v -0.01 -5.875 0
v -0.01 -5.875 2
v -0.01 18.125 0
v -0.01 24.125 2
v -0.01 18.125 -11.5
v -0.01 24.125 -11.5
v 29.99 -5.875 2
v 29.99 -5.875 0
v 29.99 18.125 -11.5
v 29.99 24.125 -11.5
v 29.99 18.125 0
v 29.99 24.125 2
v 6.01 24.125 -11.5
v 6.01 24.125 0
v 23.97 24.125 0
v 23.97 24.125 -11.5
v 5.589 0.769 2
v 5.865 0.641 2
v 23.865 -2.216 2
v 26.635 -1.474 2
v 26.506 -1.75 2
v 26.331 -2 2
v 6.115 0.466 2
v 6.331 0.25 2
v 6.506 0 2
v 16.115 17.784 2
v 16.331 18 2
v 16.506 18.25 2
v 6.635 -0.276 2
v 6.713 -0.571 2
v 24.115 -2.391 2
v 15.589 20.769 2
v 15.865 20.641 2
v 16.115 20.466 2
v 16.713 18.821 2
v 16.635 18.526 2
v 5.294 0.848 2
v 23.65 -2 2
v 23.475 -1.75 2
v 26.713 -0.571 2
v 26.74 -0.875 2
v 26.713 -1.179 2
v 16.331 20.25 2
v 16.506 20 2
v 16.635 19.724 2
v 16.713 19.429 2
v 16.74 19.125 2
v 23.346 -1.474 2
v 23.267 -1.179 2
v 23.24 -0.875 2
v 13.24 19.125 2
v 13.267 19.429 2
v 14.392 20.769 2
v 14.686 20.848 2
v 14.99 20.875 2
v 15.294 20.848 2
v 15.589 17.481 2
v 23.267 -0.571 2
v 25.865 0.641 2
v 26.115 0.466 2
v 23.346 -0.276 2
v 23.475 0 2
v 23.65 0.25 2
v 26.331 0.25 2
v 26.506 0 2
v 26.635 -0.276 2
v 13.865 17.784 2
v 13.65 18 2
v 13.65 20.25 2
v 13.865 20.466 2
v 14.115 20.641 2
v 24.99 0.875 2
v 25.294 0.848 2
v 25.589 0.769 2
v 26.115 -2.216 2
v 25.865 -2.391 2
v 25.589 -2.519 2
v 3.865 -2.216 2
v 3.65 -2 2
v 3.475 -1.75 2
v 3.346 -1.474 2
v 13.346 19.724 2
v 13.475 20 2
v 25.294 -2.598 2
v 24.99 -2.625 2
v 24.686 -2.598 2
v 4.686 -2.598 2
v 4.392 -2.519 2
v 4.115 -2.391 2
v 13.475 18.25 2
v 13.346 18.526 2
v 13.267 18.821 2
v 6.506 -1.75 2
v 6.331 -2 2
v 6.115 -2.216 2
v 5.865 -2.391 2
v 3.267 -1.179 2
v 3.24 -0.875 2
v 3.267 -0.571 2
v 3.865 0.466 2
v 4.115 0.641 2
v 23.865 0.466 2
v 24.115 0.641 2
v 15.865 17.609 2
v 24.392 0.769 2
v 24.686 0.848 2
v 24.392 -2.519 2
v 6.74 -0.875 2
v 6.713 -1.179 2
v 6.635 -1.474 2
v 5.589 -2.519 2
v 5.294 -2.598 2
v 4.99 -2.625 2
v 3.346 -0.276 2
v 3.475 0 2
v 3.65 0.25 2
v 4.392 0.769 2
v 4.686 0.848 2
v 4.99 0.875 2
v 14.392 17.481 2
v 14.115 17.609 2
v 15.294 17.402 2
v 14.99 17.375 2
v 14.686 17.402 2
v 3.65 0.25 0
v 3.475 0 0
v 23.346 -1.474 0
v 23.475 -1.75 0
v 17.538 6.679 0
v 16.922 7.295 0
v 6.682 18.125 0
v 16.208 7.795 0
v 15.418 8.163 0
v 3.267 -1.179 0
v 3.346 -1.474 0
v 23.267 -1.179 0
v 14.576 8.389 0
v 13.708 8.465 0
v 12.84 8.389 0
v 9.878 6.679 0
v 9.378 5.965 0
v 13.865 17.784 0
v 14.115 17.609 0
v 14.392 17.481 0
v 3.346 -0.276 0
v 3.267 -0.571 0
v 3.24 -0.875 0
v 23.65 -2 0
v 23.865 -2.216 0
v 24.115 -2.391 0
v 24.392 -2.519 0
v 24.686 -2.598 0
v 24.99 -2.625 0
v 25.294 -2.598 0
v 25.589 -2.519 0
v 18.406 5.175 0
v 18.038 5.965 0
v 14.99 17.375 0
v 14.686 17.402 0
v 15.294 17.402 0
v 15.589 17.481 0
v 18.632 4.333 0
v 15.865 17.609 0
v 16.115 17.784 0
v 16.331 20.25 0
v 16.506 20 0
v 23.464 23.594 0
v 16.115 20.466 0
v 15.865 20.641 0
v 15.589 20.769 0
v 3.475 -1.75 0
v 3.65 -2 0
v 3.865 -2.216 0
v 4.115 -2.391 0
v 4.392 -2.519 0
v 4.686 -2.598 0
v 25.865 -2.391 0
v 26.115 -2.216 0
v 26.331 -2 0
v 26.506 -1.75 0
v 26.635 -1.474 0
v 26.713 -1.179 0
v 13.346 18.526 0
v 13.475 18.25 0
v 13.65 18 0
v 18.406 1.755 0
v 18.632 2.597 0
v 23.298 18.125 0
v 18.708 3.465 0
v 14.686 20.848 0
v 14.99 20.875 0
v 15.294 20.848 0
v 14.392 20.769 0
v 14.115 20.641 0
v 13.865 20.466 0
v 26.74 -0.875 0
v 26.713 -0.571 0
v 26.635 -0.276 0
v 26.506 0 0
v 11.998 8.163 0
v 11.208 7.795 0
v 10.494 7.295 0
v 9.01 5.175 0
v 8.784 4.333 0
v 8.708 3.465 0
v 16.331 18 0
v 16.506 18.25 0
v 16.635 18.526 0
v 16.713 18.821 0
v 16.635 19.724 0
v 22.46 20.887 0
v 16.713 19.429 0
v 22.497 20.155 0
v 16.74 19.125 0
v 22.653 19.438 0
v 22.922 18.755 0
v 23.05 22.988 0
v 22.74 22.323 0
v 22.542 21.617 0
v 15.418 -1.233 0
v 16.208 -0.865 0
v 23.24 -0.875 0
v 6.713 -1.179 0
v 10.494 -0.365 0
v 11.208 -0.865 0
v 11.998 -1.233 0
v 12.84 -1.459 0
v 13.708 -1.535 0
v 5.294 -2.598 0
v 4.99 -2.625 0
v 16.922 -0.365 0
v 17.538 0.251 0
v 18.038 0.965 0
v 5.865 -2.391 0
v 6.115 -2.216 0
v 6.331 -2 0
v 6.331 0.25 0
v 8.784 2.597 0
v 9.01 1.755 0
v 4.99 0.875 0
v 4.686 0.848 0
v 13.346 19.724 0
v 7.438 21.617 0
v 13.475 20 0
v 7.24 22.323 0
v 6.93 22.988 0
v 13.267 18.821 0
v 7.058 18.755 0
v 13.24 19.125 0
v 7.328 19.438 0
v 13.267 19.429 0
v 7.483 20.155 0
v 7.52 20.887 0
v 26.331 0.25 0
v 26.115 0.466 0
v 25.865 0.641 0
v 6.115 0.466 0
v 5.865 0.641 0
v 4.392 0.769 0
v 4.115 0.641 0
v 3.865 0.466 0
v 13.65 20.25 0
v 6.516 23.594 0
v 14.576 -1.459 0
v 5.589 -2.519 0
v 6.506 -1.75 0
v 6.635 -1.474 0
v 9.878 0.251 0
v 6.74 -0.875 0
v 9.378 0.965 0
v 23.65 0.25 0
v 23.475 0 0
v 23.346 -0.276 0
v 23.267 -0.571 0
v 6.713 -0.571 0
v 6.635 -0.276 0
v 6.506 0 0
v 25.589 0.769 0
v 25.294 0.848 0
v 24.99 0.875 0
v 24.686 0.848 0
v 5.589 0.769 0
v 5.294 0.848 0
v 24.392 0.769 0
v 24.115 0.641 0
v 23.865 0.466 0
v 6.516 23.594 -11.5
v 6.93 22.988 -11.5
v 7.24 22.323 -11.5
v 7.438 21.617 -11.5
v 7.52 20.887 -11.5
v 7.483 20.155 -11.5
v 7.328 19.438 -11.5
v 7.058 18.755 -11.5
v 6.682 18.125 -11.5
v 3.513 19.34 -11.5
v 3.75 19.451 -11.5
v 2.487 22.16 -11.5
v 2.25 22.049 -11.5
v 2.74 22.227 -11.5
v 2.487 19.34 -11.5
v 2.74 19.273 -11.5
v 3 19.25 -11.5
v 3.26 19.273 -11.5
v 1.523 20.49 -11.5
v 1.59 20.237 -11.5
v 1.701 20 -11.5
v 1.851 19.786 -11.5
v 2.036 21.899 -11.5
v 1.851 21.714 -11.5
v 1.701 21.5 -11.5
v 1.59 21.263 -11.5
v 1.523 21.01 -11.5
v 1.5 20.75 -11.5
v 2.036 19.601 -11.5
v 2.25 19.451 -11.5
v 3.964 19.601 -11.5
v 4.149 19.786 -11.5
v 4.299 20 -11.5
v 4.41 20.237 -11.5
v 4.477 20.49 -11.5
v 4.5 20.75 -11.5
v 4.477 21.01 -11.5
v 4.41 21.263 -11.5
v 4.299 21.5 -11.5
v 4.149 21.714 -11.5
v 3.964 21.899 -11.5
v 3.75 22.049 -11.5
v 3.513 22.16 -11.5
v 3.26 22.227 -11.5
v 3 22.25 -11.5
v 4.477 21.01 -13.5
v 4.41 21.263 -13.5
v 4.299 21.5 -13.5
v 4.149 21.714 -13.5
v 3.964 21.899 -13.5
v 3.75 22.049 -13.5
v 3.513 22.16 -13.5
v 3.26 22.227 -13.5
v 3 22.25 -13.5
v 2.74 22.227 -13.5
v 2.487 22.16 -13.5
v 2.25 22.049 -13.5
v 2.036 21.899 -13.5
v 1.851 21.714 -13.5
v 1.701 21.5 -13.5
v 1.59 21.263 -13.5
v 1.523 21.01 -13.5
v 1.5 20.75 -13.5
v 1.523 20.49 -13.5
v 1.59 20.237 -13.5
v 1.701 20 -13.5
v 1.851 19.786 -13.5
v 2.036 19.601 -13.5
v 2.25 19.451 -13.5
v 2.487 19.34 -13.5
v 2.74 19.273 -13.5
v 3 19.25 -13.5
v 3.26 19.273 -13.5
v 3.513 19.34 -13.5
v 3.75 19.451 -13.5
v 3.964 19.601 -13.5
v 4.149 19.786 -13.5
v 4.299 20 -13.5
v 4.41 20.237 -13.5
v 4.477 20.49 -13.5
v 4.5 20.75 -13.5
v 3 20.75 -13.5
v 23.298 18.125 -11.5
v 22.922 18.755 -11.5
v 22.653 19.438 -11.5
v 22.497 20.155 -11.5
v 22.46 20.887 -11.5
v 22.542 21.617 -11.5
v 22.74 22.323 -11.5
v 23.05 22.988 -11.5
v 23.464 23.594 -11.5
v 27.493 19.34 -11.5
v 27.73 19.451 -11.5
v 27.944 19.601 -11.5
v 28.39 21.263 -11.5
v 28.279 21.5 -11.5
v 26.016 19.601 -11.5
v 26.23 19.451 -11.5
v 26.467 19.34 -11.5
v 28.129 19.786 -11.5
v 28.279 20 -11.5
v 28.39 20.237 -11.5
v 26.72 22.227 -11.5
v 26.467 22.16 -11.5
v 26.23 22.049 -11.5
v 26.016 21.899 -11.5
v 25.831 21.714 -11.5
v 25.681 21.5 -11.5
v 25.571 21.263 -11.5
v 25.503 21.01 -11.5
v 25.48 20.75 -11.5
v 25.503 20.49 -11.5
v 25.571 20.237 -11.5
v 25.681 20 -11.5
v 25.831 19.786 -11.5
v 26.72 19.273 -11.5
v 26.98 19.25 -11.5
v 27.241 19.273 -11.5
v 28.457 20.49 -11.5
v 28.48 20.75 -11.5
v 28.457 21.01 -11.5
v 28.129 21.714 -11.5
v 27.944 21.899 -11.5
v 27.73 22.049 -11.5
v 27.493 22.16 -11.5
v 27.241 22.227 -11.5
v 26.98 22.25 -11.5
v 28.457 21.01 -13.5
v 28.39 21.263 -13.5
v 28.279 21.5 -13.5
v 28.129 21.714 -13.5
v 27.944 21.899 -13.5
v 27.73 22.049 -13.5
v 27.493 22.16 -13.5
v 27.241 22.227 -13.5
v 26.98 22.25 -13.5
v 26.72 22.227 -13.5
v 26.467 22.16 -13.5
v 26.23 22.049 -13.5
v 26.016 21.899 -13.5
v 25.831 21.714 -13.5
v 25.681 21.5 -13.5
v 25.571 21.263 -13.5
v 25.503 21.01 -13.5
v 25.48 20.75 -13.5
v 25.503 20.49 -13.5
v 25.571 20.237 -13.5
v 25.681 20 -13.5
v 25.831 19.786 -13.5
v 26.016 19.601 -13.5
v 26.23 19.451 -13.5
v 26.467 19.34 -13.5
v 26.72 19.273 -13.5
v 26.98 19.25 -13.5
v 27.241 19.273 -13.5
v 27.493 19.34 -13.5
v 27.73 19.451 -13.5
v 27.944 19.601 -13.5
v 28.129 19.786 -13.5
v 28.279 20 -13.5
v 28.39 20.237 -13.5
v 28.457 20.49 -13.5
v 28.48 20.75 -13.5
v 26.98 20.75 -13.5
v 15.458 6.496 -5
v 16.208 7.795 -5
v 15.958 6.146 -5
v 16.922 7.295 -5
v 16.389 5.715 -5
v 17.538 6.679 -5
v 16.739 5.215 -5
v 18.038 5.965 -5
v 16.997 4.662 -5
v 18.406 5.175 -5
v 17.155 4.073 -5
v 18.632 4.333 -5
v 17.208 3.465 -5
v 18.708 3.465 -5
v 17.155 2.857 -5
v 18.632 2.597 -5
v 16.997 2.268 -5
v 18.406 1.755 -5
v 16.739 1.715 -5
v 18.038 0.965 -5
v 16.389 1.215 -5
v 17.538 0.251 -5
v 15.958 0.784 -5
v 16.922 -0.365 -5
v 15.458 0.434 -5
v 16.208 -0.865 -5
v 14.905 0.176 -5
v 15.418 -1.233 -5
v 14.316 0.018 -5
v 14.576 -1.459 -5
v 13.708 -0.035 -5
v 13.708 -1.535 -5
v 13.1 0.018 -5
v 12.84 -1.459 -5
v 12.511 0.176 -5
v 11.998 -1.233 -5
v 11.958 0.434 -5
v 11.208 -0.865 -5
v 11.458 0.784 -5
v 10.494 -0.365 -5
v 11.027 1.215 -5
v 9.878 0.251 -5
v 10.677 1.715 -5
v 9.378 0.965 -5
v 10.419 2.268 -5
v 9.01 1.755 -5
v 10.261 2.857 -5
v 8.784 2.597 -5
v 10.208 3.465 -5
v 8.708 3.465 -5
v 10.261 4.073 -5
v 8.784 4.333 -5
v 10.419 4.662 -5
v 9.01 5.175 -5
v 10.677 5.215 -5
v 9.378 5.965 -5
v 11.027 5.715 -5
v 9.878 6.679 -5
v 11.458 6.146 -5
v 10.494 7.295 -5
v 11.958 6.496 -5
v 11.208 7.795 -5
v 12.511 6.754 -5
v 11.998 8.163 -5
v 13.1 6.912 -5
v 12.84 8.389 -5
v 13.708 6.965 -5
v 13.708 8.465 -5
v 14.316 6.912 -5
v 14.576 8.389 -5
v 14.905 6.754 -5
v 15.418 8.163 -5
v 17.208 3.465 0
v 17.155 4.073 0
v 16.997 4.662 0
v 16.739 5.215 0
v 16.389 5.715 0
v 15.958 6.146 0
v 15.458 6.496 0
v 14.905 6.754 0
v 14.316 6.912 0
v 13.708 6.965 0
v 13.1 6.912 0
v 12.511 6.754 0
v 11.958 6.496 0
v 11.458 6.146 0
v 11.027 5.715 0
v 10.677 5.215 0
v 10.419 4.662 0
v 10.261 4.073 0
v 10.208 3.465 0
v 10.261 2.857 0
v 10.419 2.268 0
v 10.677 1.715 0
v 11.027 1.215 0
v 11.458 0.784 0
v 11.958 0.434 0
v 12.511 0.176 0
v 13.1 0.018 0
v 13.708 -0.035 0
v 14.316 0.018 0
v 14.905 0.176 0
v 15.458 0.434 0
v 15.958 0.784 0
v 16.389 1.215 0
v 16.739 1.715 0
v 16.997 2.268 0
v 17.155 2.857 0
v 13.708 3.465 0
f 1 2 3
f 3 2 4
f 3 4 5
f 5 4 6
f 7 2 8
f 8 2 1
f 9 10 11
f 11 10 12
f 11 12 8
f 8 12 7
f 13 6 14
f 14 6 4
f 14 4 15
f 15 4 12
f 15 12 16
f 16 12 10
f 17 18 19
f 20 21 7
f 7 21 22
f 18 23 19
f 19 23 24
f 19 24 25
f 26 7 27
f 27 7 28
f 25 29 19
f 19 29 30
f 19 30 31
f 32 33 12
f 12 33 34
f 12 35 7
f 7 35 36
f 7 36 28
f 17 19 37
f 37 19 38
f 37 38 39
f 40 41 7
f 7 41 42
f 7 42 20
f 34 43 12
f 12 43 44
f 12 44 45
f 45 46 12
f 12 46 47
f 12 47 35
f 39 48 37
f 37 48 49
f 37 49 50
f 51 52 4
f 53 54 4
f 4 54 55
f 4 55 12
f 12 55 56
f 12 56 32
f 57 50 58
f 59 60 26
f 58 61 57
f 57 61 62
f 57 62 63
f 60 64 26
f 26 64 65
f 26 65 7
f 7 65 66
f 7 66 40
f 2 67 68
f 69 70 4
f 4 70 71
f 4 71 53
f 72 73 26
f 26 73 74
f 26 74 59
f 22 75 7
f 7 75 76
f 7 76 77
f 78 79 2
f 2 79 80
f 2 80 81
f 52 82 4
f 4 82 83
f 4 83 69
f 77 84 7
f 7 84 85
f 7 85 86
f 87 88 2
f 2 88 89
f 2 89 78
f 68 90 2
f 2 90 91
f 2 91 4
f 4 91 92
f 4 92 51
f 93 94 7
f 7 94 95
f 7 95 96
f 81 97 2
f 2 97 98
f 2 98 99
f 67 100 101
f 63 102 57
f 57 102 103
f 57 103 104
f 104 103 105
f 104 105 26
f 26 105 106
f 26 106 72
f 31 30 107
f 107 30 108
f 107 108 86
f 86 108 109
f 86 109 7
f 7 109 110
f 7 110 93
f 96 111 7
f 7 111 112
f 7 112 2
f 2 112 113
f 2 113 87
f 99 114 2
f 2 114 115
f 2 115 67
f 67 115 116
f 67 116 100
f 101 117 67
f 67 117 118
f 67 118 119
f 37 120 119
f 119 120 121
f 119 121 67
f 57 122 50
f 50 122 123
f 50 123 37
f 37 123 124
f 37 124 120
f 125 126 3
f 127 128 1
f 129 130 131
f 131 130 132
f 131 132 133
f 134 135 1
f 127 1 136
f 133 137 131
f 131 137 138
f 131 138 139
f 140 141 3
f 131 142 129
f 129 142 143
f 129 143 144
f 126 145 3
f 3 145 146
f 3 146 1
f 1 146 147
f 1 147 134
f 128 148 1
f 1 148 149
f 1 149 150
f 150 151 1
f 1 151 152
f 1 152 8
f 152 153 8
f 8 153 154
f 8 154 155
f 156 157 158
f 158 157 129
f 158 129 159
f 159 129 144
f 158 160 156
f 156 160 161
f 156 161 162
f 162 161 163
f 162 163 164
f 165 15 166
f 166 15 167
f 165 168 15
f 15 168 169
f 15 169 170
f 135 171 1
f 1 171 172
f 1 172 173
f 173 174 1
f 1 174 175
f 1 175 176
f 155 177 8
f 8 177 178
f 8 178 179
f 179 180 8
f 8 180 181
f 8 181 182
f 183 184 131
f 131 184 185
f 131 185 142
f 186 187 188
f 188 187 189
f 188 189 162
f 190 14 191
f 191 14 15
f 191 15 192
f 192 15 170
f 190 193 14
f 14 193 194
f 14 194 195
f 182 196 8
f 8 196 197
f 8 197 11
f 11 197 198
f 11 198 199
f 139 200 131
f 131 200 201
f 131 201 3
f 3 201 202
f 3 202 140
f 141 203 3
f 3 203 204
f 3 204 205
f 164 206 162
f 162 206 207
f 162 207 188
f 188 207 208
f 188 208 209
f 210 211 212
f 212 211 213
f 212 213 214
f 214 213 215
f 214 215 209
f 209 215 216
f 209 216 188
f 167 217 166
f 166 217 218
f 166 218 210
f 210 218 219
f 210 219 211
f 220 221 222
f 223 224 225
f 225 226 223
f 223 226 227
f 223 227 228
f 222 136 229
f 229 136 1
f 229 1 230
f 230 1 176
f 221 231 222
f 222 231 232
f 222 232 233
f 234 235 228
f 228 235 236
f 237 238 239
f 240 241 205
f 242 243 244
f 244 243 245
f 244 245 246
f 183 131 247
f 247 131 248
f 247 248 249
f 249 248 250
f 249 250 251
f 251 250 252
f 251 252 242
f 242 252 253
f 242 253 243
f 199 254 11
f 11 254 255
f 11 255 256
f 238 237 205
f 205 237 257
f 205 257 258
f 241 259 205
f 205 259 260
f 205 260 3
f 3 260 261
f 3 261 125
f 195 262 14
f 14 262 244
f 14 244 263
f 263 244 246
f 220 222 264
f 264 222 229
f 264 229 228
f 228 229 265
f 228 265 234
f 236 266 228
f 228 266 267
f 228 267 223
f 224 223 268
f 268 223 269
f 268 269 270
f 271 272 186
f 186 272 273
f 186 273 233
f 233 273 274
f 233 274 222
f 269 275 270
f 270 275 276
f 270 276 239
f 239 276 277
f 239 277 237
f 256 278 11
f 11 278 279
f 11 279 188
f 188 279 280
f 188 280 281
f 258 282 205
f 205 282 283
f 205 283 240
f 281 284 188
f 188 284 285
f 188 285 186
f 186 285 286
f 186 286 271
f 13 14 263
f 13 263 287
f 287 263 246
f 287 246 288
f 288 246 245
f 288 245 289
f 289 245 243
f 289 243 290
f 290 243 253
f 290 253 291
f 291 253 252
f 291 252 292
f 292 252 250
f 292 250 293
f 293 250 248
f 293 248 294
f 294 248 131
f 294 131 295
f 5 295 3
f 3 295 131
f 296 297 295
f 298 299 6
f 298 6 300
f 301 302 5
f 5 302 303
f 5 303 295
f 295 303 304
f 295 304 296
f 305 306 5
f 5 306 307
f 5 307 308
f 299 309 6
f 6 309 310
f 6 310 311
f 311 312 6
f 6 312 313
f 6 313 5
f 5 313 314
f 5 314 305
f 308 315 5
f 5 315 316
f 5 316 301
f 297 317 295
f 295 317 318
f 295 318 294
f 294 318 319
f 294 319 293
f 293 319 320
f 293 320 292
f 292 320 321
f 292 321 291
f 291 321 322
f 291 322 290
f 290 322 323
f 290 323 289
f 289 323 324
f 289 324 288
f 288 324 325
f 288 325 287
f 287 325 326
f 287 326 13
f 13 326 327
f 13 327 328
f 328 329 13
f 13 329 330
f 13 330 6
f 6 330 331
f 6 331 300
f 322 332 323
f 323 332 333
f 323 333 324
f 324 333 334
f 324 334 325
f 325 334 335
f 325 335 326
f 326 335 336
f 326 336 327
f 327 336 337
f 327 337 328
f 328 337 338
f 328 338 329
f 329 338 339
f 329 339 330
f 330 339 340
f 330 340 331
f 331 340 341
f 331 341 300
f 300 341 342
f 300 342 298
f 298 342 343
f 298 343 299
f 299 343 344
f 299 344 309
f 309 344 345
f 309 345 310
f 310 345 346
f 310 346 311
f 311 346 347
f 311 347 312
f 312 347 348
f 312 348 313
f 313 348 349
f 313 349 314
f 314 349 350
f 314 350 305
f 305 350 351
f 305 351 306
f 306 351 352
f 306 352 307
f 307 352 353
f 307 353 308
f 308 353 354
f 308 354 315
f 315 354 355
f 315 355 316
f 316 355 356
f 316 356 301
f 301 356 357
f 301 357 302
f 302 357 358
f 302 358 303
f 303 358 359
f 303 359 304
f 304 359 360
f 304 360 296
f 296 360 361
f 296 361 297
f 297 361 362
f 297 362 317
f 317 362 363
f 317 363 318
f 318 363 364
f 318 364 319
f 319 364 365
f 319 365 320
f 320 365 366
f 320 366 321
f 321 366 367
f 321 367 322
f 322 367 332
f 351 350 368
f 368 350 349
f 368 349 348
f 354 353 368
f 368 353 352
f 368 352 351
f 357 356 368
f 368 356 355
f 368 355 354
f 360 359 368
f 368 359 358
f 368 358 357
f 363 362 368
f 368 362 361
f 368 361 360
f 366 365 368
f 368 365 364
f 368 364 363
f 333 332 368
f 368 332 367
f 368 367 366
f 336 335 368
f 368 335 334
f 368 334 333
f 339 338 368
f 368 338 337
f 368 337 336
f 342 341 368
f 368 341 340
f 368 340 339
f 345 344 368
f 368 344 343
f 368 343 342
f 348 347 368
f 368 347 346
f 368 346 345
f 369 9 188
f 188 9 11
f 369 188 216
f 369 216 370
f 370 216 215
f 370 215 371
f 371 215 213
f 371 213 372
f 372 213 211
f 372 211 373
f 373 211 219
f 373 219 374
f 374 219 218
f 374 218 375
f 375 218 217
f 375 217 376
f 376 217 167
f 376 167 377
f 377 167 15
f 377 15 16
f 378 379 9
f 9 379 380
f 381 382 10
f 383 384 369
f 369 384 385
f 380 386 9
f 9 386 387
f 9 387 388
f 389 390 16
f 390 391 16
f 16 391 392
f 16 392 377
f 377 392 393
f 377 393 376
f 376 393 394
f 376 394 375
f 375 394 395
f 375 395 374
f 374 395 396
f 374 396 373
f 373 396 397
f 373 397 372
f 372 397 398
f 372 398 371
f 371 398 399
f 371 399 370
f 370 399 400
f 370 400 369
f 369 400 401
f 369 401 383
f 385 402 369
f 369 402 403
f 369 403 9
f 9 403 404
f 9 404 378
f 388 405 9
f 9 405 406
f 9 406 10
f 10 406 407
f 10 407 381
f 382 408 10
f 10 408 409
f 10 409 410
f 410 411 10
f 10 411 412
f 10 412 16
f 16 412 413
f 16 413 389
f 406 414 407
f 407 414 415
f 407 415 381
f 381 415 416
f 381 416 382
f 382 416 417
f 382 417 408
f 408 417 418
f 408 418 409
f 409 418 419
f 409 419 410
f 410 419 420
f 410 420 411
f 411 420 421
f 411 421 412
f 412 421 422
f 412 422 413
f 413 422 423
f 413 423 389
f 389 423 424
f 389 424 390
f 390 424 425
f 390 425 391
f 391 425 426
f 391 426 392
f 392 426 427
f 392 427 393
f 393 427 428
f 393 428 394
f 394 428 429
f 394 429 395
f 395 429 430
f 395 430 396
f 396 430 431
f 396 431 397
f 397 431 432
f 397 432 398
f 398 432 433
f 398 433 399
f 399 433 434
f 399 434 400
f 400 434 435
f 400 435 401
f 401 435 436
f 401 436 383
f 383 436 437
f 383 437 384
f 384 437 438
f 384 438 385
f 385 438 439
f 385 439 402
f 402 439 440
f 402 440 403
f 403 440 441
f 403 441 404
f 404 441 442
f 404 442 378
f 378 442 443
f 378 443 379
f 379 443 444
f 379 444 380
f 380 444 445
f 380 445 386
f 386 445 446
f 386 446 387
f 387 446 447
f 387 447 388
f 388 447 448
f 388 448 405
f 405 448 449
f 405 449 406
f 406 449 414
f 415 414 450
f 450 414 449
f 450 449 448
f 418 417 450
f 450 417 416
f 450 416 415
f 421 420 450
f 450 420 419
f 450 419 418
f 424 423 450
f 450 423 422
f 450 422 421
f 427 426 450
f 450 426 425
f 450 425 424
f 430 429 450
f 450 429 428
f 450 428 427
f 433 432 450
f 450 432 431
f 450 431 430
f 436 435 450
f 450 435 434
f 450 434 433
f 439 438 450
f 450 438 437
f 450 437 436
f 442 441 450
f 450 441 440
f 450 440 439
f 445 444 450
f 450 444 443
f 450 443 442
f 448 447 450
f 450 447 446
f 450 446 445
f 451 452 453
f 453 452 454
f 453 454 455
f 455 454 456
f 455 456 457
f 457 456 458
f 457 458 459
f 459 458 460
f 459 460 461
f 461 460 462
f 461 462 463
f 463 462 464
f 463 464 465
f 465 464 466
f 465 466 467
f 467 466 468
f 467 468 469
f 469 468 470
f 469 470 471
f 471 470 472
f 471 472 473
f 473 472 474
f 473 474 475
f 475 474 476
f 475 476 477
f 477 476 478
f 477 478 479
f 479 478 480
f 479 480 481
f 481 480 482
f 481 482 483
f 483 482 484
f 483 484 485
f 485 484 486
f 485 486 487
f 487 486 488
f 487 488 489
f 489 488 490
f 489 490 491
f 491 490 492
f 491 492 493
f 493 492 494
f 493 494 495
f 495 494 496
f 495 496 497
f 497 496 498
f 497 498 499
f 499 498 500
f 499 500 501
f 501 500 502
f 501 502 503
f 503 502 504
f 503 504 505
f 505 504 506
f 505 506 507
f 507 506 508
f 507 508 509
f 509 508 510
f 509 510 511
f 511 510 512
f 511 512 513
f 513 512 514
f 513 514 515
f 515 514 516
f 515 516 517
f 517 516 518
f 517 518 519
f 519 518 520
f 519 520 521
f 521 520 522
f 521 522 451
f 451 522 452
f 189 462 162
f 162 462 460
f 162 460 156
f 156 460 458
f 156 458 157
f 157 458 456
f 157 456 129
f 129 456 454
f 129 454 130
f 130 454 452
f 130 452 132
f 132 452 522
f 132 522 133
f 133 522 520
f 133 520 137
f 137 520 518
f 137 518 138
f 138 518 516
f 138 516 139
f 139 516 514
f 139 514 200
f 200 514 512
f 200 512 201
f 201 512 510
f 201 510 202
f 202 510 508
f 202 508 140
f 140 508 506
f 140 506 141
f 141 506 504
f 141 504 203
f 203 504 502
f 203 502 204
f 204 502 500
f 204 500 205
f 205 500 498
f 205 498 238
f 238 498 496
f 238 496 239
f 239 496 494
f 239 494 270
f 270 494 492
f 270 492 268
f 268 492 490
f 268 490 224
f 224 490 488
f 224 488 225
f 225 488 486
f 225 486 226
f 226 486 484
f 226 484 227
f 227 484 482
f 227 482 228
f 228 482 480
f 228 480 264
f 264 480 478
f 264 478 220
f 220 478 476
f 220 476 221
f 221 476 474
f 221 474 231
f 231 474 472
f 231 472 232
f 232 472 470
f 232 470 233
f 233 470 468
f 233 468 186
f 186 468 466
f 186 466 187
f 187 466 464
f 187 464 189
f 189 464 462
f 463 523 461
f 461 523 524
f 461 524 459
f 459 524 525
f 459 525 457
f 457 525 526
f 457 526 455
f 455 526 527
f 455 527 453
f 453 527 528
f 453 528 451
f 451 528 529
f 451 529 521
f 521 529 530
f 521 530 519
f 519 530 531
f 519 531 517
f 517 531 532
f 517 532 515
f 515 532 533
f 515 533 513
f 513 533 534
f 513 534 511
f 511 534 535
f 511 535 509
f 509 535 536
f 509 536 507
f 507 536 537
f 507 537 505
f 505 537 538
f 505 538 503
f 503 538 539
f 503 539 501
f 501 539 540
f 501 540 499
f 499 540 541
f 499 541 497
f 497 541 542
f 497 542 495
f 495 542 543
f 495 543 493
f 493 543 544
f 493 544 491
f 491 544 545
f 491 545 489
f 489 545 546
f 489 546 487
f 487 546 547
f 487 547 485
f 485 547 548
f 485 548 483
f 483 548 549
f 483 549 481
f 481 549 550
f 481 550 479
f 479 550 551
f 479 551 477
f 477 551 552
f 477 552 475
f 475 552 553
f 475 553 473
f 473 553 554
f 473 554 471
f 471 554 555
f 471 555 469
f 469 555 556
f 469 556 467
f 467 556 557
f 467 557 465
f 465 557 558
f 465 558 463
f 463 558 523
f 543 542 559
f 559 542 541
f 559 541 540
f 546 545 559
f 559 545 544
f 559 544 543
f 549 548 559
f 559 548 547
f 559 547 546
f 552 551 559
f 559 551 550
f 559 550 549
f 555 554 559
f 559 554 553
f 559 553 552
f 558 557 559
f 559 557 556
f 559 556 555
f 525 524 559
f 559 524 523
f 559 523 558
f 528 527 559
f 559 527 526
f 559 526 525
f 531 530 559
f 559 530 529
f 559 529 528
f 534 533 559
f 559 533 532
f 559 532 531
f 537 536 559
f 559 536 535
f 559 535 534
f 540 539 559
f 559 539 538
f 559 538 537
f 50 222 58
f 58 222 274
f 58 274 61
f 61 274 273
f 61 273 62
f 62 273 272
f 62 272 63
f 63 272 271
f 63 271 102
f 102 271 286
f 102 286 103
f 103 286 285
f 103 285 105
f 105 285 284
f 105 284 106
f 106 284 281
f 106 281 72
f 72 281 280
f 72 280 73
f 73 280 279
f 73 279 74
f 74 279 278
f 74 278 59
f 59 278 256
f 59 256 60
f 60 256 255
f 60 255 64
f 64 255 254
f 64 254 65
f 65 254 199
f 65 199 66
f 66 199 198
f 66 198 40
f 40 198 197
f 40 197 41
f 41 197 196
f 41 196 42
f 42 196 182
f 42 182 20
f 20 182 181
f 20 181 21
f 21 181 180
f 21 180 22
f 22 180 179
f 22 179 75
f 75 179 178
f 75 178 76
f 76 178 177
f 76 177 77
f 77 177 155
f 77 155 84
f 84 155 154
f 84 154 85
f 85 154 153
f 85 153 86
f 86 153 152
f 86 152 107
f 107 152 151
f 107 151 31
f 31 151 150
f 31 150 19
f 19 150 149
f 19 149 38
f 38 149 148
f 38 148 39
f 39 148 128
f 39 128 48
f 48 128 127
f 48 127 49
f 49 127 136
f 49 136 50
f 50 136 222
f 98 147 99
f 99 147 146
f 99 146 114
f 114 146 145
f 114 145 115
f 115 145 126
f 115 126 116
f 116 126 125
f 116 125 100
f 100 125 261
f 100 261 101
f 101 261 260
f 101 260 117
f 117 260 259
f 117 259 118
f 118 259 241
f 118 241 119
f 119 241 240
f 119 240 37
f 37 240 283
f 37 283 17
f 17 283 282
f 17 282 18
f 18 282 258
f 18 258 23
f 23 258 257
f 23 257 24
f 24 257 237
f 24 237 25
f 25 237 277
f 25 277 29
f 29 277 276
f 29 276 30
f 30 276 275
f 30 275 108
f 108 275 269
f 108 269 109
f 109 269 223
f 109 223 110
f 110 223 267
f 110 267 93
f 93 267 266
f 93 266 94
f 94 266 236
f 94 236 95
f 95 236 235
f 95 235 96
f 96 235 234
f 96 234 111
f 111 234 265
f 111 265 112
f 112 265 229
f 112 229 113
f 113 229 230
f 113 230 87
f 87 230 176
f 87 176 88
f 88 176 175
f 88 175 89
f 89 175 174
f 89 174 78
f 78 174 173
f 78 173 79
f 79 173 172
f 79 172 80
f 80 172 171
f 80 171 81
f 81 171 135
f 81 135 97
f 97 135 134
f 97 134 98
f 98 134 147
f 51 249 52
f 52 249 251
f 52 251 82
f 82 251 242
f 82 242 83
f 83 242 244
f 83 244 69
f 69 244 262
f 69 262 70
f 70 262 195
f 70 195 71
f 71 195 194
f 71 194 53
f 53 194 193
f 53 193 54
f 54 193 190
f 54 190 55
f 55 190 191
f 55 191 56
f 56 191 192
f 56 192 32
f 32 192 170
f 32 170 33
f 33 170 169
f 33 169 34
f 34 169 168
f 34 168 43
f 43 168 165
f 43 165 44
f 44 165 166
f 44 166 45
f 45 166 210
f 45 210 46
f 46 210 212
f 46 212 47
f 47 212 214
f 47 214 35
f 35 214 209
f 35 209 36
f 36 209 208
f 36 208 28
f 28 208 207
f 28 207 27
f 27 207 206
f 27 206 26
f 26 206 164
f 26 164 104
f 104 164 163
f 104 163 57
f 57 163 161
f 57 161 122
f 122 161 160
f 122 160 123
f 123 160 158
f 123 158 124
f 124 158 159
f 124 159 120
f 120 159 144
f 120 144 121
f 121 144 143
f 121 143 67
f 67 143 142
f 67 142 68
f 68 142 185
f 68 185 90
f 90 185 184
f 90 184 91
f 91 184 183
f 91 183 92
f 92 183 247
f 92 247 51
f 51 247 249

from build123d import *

# Parameters (mm, degrees)
SKETCH1_W           = 30
SKETCH1_H           = 30
BOSS_EXTRUDE1_DEPTH = 2
BOSS_EXTRUDE3_DEPTH = 11.5
SKETCH3_R           = 1.5
BOSS_EXTRUDE4_DEPTH = 2
SKETCH4_R           = 5
SKETCH4_R_2         = 3.5
BOSS_EXTRUDE5_DEPTH = 5
SKETCH5_R           = 1.75
CUT_EXTRUDE1_DEPTH  = 3


with BuildPart() as part:
    # Sketch1 → Boss-Extrude1 (new body)
    with BuildSketch(Plane.XY):
        with Locations((14.990081794, 9.125005221)):
            Rectangle(SKETCH1_W, SKETCH1_H)
    extrude(amount=BOSS_EXTRUDE1_DEPTH)

    # Sketch2 → Boss-Extrude3 (add)
    with BuildSketch(Plane(origin=(0, 0, 0), x_dir=(-1, 0, 0), z_dir=(0, 0, -1))):
        with BuildLine():
            Line((0.009918206, 24.125005221), (0.009918206, 18.125005221))
            Line((0.009918206, 18.125005221), (-6.682350101, 18.125005221))
            ThreePointArc((-6.682350101, 18.125005221), (-7.494065902, 21.253655407), (-6.009921446, 24.125005221))
            Line((-6.009921446, 24.125005221), (0.009918206, 24.125005221))
        make_face()
    boss_extrude3 = extrude(amount=BOSS_EXTRUDE3_DEPTH)

    # Sketch3 → Boss-Extrude4 (add)
    with BuildSketch(Plane(origin=(0, 0, -11.5), x_dir=(-1, 0, 0), z_dir=(0, 0, -1))):
        with Locations((-3.00000162, 20.74999914)):
            Circle(SKETCH3_R)
    boss_extrude4 = extrude(amount=BOSS_EXTRUDE4_DEPTH)

    # Mirror1: Boss-Extrude3, Boss-Extrude4 across plane
    add(boss_extrude3.mirror(Plane(origin=(14.990081794, 0, 0), x_dir=(0, 0, 1), z_dir=(1, 0, 0))))
    add(boss_extrude4.mirror(Plane(origin=(14.990081794, 0, 0), x_dir=(0, 0, 1), z_dir=(1, 0, 0))))

    # Sketch4 → Boss-Extrude5 (add)
    with BuildSketch(Plane(origin=(0, 0, 0), x_dir=(-1, 0, 0), z_dir=(0, 0, -1))):
        with Locations((-13.707999, 3.46499688)):
            Circle(SKETCH4_R)
        with Locations((-13.707999, 3.46499688)):
            Circle(SKETCH4_R_2, mode=Mode.SUBTRACT)
    extrude(amount=BOSS_EXTRUDE5_DEPTH)

    # Sketch5 → Cut-Extrude1 (cut, through all)
    with BuildSketch(Plane(origin=(0, 0, 0), x_dir=(-1, 0, 0), z_dir=(0, 0, -1))):
        with Locations((-24.990081794, -0.874994779)):
            Circle(SKETCH5_R)
        with Locations((-4.990081794, -0.874994779)):
            Circle(SKETCH5_R)
        with Locations((-14.990081794, 19.125005221)):
            Circle(SKETCH5_R)
    extrude(amount=-CUT_EXTRUDE1_DEPTH, mode=Mode.SUBTRACT)


solid = part.part
